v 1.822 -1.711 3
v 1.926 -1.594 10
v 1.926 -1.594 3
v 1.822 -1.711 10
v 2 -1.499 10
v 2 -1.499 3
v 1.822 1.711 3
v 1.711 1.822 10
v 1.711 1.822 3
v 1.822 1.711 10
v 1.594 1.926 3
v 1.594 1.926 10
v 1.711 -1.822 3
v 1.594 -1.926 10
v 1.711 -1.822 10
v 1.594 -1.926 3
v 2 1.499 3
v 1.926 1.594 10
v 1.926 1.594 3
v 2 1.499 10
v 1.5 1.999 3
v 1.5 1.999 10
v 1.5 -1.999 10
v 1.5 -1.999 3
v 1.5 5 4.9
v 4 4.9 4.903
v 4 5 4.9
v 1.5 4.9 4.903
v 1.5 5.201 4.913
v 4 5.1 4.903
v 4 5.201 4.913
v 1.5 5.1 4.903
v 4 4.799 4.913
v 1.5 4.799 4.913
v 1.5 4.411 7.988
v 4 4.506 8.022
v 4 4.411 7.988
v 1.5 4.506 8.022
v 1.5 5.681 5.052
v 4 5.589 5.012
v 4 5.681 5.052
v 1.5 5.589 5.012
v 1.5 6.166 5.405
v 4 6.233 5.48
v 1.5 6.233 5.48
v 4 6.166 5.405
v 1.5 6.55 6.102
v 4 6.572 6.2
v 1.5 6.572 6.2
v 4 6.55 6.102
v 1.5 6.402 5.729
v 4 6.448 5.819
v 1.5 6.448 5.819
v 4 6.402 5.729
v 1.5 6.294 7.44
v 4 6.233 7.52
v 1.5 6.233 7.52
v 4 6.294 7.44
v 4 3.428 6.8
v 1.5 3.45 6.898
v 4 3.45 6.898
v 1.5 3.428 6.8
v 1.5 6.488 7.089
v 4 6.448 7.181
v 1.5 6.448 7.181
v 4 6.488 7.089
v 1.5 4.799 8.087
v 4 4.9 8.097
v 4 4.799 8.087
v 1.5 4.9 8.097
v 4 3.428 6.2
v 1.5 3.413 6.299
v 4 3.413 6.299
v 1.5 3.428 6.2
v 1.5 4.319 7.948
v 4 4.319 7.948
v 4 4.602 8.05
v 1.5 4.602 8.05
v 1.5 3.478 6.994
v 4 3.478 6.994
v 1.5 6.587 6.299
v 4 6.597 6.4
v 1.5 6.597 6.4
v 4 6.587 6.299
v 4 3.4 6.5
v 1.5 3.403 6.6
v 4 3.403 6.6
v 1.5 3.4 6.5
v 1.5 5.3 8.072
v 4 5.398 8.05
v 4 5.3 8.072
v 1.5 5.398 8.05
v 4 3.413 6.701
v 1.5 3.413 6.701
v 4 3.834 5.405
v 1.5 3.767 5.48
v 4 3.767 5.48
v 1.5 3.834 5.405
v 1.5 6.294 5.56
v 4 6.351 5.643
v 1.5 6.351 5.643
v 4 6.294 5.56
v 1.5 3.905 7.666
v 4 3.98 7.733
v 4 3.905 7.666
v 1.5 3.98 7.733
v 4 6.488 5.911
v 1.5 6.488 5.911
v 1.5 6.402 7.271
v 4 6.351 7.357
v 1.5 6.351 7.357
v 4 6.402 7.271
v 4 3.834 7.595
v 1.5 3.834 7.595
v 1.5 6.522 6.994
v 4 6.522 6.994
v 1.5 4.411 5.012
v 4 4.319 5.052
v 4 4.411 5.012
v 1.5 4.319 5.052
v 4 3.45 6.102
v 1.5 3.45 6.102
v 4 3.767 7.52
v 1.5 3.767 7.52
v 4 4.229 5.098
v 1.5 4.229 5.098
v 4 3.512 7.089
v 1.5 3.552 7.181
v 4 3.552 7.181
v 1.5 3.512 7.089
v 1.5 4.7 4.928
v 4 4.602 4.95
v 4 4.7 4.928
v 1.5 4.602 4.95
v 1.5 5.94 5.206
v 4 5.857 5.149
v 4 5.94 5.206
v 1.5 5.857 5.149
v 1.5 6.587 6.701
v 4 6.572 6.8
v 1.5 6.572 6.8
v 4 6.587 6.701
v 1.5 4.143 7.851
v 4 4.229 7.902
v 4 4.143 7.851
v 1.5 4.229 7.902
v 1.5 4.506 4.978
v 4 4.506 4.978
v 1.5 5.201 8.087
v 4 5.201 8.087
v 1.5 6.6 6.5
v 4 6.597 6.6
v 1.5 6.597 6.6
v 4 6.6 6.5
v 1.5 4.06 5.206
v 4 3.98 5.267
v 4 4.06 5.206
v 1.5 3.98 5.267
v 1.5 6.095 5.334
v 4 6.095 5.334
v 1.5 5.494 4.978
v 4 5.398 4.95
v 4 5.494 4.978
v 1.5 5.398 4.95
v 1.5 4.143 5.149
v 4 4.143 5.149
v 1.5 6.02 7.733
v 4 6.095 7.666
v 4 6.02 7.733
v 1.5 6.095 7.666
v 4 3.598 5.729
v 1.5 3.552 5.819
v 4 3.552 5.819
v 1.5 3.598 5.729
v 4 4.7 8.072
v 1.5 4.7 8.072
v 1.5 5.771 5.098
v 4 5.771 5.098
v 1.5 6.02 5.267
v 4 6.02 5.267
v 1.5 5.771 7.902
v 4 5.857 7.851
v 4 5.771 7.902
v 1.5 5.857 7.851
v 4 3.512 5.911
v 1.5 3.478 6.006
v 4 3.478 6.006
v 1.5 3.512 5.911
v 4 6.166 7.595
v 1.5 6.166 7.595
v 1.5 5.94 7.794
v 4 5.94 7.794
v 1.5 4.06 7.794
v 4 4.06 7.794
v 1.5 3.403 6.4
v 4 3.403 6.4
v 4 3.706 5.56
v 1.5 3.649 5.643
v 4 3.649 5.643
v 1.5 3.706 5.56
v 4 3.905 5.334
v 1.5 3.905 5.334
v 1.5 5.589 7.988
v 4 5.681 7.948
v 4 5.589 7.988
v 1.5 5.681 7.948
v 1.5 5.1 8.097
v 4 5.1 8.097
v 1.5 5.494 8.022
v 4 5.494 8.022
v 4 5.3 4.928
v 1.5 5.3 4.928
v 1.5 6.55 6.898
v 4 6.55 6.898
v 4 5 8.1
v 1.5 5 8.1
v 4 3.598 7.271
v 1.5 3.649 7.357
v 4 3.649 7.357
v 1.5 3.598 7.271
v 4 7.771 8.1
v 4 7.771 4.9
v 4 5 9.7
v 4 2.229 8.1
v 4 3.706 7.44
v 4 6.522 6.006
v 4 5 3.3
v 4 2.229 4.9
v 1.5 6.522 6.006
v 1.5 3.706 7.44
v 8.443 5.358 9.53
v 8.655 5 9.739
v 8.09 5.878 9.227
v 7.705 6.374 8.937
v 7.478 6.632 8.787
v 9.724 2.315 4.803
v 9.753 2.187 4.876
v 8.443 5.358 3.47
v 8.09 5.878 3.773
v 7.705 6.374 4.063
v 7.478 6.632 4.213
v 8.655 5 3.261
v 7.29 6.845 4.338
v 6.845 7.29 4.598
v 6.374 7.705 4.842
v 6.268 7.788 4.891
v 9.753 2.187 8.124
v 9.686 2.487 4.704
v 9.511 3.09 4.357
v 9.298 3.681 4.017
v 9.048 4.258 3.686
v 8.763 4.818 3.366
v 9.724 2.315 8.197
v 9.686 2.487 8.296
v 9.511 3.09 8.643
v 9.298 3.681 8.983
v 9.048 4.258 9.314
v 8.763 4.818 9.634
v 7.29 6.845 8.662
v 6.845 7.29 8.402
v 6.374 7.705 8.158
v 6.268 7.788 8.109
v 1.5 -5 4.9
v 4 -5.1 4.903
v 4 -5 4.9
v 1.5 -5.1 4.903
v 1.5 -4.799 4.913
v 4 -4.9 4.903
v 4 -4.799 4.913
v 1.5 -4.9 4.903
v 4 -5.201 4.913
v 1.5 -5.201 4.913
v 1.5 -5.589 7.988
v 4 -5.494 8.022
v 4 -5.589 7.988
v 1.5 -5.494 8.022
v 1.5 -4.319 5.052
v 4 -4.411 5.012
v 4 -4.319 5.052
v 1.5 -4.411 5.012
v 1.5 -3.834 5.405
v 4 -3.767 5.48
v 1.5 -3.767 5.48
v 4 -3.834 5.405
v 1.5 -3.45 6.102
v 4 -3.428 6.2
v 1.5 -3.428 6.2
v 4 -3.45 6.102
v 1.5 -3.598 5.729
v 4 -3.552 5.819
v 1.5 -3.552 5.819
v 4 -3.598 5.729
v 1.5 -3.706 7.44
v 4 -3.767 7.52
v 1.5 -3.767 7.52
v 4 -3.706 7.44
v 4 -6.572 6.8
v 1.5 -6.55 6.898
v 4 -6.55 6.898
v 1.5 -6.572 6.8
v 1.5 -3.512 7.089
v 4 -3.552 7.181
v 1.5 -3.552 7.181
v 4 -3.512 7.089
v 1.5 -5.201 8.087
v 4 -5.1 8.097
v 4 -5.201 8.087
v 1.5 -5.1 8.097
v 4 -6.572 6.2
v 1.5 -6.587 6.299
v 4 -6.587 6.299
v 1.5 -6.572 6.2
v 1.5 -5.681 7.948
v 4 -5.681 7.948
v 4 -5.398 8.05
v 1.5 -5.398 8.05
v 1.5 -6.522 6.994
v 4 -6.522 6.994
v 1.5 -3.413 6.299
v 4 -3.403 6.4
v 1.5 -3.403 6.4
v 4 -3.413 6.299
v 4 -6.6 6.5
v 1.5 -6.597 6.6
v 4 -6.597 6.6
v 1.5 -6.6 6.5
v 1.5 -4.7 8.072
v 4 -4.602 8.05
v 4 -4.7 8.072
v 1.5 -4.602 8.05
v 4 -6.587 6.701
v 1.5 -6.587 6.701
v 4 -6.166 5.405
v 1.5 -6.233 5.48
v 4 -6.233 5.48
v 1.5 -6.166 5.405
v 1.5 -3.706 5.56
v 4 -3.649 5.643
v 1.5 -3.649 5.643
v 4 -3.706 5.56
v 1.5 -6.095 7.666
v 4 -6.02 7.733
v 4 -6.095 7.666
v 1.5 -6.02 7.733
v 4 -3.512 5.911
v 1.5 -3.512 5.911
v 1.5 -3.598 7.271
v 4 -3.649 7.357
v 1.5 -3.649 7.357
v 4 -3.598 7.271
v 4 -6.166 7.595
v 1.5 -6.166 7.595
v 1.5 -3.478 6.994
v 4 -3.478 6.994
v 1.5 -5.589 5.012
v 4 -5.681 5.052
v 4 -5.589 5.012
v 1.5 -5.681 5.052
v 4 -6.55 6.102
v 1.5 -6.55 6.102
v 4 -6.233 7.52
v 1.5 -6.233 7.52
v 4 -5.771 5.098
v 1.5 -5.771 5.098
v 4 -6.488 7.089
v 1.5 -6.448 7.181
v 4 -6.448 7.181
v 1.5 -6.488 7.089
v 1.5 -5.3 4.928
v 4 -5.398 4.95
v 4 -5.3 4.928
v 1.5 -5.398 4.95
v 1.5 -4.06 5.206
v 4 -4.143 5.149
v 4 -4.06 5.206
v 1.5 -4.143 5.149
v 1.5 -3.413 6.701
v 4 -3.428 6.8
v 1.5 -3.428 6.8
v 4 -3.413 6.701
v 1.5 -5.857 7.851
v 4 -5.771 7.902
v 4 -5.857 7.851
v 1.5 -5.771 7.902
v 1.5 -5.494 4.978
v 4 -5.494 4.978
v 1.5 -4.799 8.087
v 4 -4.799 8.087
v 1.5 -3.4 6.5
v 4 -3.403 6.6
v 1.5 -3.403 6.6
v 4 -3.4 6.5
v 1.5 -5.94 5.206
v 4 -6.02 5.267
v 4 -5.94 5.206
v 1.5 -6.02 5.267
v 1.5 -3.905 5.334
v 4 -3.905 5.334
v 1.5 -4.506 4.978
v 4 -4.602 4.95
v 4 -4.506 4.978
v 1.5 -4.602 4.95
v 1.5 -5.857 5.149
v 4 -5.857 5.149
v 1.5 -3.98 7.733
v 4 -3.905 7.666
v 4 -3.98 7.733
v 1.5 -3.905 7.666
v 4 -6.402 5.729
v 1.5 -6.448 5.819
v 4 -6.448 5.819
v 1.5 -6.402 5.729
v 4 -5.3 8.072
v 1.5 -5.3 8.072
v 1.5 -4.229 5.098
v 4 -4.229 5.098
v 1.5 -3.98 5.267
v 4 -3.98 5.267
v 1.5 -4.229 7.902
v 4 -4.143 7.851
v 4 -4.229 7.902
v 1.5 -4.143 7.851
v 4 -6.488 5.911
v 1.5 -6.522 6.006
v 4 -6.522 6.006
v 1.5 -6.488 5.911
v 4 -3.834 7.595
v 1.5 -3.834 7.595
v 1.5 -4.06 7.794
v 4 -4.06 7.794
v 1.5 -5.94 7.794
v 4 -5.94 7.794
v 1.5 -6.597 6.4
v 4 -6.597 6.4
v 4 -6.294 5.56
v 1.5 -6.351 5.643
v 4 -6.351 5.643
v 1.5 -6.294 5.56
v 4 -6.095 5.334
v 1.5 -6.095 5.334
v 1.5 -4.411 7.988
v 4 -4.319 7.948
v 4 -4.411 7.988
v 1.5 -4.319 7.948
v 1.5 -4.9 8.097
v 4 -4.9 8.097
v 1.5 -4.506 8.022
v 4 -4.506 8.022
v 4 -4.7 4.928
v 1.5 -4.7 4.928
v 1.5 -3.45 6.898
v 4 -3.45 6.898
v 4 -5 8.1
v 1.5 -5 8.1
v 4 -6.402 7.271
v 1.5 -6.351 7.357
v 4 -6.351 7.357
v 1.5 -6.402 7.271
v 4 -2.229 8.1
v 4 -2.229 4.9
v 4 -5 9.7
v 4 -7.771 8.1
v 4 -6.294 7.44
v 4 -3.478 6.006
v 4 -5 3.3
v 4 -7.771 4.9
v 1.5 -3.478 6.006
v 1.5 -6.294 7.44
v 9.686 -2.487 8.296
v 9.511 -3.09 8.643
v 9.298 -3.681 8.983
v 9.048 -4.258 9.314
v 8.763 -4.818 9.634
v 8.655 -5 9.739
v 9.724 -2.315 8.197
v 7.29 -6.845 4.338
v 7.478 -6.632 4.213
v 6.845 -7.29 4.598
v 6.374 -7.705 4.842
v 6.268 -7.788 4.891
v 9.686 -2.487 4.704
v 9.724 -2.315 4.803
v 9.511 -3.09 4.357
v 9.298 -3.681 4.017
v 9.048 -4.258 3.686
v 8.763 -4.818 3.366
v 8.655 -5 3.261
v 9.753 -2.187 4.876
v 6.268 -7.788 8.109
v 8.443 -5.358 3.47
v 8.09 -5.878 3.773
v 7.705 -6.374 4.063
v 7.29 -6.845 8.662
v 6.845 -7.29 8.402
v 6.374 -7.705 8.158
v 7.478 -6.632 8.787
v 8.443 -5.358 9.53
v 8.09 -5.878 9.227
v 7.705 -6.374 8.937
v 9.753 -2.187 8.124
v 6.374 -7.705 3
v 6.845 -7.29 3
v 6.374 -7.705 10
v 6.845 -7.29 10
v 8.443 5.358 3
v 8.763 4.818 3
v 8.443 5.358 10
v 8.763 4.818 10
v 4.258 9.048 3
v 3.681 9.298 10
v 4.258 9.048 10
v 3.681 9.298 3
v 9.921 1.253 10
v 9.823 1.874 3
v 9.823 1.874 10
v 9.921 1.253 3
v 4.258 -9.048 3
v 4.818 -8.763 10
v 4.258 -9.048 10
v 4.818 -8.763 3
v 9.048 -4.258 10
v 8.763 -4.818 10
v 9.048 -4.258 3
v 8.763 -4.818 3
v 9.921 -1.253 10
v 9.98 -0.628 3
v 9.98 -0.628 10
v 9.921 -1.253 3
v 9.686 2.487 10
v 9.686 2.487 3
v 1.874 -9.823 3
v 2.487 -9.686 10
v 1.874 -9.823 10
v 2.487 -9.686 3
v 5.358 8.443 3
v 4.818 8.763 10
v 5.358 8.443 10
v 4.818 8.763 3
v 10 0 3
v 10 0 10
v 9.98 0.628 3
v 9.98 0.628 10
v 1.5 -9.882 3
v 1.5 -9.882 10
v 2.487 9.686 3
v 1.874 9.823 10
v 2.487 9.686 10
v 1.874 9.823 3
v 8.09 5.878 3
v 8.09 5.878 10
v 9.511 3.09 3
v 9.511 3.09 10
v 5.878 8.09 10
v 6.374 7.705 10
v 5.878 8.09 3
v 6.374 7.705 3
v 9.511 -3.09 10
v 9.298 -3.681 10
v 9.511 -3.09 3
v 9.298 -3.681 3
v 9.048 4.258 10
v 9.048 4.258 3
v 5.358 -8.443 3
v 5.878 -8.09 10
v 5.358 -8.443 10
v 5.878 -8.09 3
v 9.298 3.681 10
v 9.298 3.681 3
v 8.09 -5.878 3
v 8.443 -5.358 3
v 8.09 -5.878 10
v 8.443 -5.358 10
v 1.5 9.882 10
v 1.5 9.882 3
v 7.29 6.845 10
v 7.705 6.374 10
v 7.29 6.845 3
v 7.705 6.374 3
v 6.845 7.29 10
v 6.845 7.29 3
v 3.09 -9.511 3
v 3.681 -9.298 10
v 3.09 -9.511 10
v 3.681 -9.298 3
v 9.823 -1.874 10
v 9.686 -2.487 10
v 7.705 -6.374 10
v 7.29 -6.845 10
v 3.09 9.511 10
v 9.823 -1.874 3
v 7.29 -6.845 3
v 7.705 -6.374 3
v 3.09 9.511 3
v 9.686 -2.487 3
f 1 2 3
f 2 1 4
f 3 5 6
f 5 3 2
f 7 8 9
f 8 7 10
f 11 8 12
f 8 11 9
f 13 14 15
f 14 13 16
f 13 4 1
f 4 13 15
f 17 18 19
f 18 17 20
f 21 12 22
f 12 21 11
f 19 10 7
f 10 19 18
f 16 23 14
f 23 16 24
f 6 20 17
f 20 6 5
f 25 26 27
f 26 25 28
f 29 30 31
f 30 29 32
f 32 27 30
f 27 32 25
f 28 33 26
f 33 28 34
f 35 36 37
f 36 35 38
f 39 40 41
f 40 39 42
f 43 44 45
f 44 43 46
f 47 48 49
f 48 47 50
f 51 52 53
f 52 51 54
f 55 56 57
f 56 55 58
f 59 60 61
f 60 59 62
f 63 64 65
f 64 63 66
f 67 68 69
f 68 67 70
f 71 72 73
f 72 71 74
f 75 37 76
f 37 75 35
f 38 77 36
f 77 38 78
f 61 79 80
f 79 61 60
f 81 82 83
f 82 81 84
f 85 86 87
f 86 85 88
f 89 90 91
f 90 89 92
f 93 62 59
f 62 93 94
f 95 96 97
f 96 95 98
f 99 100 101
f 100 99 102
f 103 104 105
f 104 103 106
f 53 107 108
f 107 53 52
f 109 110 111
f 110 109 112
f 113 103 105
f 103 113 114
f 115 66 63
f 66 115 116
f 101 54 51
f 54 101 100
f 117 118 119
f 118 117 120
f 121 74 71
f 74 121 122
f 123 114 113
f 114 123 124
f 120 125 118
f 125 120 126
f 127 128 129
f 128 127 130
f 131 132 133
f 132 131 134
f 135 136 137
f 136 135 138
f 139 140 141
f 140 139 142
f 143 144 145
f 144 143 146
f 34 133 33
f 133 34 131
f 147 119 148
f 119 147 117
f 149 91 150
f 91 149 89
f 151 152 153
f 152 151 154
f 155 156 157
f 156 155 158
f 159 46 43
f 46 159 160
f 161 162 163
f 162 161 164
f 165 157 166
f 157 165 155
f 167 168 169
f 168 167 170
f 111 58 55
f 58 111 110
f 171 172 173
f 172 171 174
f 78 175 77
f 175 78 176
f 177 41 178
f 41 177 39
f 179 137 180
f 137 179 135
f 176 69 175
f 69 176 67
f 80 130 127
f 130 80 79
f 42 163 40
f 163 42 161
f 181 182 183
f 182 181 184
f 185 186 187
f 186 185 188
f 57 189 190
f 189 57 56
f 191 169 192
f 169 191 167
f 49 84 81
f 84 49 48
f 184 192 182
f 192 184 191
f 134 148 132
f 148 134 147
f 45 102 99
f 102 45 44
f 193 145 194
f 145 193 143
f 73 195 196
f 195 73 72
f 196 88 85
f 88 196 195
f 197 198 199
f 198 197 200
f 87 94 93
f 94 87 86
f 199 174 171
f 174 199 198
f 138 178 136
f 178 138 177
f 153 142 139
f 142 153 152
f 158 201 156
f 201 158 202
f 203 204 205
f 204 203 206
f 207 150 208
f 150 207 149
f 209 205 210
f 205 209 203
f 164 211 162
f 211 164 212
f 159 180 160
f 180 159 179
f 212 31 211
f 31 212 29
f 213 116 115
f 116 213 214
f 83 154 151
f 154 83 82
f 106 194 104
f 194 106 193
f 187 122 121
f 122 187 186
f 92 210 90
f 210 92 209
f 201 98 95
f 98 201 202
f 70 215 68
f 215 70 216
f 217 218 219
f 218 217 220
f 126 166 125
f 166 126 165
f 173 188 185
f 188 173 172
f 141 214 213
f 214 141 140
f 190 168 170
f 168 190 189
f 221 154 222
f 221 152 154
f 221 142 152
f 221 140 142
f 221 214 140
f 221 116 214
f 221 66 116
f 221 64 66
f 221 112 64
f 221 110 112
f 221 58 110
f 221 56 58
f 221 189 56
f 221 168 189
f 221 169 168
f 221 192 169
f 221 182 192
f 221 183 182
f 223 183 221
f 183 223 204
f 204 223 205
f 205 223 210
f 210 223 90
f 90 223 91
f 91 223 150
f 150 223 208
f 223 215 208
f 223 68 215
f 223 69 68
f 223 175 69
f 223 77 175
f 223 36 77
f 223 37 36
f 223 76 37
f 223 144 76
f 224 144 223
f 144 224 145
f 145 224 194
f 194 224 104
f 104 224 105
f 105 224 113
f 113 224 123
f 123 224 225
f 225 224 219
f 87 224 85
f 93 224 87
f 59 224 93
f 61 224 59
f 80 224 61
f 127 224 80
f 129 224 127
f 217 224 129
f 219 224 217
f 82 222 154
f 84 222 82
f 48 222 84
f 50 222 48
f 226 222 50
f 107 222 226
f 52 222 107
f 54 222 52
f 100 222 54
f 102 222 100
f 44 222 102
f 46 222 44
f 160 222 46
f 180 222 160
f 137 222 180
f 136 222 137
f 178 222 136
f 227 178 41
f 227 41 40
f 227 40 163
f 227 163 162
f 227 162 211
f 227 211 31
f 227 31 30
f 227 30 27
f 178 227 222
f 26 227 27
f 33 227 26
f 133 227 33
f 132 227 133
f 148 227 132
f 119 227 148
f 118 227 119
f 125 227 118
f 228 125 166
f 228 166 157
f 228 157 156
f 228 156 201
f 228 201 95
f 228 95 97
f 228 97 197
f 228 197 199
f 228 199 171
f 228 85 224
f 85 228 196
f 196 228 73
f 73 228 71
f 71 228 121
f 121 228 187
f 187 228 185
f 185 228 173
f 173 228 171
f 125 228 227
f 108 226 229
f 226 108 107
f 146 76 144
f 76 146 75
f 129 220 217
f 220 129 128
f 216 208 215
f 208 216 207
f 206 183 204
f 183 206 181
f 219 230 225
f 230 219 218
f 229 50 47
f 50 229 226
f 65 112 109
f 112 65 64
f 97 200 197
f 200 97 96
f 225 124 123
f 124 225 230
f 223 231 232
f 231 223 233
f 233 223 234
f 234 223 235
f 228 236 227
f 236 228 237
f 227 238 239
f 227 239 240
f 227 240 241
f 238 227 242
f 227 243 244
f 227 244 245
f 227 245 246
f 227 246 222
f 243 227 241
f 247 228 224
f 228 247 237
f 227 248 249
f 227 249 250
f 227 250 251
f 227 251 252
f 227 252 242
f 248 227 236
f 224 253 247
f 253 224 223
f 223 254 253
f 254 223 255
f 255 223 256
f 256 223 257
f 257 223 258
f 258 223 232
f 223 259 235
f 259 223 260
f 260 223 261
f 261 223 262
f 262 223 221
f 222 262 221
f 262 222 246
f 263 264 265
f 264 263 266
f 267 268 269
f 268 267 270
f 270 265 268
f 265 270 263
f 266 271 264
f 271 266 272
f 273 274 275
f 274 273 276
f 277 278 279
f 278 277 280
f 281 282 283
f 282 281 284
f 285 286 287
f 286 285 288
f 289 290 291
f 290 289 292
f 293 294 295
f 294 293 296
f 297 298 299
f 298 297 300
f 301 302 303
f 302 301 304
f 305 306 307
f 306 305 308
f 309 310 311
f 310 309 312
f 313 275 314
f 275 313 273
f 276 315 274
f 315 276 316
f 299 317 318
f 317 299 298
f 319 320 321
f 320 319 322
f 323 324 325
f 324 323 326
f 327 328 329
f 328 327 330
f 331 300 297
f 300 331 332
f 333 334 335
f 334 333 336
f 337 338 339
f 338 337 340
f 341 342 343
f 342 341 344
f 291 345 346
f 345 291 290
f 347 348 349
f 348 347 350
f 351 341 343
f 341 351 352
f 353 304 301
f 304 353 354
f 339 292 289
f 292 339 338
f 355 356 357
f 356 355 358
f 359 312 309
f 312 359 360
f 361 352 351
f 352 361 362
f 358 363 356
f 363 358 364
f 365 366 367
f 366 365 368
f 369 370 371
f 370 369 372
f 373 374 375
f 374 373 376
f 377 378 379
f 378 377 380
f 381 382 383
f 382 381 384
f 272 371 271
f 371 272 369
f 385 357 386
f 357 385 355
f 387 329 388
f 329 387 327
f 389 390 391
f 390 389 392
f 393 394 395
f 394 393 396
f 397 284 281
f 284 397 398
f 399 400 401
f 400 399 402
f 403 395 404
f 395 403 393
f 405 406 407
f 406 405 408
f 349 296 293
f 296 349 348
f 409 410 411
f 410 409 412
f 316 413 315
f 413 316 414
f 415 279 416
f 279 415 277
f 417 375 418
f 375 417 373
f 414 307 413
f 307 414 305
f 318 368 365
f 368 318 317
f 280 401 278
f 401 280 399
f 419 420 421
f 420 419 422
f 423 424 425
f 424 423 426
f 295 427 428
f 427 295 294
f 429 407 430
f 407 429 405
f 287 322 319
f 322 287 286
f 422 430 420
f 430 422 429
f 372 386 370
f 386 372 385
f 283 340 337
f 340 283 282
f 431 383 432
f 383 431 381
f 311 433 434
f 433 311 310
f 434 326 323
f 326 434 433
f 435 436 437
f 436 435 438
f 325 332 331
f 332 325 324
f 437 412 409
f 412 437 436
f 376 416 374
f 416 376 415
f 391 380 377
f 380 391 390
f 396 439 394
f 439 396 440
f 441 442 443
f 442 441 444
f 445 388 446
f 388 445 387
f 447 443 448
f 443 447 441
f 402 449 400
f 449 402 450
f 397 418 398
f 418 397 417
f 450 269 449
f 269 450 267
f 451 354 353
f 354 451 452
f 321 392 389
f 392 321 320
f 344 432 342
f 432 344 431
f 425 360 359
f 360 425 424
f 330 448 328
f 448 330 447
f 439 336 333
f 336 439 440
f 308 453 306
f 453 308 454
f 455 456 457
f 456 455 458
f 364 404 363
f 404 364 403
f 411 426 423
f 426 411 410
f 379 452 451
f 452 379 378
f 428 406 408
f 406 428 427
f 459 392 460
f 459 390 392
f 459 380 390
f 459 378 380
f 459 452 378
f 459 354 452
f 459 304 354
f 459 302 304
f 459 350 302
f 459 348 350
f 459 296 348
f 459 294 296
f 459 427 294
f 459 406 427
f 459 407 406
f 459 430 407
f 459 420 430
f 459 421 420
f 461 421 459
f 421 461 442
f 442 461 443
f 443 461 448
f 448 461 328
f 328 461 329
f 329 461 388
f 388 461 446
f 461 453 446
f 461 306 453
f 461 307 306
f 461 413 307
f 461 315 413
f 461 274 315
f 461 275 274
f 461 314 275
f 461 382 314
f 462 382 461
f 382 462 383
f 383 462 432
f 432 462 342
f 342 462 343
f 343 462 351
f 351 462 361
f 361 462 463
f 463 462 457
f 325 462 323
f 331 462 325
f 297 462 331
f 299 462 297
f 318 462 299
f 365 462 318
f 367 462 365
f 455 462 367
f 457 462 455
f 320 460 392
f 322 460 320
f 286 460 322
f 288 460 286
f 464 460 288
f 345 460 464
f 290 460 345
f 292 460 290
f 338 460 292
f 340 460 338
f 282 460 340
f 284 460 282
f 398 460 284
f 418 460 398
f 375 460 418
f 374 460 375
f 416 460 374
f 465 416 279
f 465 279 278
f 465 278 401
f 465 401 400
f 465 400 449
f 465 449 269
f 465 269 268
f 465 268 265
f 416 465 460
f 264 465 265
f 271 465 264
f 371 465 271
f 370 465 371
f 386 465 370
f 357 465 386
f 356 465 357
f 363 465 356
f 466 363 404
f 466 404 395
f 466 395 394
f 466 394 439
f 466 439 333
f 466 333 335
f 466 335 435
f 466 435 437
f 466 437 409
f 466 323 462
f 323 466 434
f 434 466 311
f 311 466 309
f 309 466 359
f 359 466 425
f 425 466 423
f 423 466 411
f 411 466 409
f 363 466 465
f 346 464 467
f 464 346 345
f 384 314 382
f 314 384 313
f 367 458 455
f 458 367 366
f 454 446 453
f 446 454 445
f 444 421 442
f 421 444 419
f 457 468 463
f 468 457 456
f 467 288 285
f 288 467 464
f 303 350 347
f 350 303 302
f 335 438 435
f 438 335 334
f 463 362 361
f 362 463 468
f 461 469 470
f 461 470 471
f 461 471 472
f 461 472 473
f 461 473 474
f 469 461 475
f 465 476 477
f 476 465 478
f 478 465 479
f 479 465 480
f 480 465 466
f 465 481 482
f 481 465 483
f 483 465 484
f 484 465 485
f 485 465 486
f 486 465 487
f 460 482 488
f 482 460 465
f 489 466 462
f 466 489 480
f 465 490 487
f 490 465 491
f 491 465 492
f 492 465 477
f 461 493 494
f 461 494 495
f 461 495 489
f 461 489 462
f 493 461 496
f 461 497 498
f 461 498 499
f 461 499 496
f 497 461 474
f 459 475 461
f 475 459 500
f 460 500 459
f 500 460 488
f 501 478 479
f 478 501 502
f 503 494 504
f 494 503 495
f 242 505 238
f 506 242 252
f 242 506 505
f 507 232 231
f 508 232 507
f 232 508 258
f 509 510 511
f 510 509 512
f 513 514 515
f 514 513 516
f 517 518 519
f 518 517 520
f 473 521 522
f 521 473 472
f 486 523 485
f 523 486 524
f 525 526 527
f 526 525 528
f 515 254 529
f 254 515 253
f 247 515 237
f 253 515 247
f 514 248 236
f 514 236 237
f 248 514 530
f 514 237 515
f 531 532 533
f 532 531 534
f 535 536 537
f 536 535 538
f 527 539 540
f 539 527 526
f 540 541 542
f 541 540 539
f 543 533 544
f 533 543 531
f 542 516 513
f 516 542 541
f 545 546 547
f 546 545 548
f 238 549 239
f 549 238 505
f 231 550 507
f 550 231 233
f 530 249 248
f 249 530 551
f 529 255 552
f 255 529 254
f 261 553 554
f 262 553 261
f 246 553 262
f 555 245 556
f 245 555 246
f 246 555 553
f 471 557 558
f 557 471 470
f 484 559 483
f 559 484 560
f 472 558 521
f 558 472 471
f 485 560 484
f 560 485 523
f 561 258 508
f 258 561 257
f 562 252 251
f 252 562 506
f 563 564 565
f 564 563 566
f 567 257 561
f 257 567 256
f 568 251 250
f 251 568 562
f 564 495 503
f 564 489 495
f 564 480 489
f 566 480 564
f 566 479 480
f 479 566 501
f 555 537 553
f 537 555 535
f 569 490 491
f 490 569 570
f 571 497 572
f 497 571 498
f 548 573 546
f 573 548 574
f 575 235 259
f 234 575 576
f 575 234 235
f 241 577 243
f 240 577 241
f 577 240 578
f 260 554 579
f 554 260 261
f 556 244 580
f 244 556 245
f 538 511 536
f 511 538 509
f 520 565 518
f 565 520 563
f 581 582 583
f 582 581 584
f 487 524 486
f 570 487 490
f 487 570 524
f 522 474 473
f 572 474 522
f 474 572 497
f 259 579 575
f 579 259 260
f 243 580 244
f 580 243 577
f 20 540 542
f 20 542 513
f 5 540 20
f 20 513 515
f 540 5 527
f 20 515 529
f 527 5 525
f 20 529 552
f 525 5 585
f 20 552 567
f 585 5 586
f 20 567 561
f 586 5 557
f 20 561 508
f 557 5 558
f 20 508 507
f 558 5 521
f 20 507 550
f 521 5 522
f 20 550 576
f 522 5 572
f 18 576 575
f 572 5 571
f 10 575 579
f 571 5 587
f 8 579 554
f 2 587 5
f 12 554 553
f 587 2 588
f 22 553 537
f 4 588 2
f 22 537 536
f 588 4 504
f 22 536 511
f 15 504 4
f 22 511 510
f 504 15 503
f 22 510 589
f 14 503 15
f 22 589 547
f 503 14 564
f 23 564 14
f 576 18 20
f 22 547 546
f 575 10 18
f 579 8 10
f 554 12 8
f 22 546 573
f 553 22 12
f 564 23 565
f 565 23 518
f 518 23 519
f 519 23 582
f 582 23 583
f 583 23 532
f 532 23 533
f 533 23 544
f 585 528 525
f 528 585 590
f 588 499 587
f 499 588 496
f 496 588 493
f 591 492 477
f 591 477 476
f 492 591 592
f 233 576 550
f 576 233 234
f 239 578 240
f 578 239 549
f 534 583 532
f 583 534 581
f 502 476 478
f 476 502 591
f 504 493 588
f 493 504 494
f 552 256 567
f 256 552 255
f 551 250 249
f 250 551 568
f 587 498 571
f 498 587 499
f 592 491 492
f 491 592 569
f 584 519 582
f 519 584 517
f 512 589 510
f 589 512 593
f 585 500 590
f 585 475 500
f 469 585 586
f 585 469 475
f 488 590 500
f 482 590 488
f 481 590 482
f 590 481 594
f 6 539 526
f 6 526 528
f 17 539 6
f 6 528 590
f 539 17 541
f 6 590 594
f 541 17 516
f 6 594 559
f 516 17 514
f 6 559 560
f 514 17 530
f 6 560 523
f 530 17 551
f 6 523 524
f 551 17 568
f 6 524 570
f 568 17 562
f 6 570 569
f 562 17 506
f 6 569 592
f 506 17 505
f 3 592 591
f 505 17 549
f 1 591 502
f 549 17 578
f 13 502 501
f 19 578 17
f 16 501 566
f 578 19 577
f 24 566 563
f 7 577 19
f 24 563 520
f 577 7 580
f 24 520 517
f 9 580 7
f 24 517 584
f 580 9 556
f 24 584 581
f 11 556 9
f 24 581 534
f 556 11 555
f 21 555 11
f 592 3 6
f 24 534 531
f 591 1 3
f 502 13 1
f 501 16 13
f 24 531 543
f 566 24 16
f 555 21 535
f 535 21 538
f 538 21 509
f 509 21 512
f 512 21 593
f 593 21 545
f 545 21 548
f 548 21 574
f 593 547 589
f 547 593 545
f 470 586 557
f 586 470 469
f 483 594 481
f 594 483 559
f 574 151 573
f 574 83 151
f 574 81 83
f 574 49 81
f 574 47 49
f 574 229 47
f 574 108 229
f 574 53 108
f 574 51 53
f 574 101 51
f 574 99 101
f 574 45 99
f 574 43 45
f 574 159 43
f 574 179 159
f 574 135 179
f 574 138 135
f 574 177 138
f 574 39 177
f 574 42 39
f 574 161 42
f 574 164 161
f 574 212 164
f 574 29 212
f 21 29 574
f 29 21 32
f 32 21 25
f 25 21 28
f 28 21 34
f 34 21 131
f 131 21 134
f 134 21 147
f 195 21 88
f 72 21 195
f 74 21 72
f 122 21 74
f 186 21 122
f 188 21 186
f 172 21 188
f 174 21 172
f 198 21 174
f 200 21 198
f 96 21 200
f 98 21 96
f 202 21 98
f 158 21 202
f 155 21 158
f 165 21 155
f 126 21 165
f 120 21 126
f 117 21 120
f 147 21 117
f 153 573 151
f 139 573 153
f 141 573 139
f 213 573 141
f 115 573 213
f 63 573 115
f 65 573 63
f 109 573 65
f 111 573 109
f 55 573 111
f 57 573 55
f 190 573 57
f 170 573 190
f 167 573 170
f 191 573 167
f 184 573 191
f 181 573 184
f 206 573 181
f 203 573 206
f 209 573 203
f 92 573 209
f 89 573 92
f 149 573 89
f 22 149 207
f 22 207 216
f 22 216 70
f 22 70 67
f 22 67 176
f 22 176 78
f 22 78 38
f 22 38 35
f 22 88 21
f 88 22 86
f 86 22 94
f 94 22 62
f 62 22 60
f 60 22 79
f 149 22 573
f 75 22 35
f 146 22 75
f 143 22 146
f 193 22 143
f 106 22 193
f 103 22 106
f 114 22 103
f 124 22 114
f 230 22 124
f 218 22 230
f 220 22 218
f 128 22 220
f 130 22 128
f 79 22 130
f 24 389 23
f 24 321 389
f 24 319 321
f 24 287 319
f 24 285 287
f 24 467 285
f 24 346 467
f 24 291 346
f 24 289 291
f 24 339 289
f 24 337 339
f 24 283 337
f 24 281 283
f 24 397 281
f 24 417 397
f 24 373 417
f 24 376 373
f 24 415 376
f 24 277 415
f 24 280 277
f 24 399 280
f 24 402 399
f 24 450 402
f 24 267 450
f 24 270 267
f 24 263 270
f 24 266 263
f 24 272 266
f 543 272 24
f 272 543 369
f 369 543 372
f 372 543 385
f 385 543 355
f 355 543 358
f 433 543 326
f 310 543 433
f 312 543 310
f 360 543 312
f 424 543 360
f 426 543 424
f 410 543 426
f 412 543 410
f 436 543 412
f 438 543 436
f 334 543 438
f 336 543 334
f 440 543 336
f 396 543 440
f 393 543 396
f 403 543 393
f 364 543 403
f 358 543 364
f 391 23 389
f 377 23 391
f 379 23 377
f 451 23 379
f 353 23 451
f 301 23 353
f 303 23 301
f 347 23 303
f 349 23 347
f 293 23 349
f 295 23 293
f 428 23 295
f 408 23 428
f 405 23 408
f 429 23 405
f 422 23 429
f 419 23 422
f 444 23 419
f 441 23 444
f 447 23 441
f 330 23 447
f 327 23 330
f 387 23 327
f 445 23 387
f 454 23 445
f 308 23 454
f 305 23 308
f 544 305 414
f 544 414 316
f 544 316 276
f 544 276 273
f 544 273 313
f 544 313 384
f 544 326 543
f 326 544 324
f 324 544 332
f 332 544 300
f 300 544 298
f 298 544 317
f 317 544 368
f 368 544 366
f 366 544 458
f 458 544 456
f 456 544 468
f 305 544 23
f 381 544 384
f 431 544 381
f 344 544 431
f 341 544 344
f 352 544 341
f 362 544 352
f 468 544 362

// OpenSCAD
$fn=100;

/*
--------------------------------------------------------
EXTRA STUFF BELOW!!  ...  Descibes a separate part.
Draw and place the hub lock (for looks).  
The dummy_shaft and hub_lock should be moved to a separate file for STL generation???

Dummy_shaft is part of hub_lock.
*/

//  v 2.1 enlarges the nut hole to "Best Fit"
module nut_hole (){
	cylinder (6,1.6,1.6);
	translate ([0,0,6])
		cylinder (6,3.2,3.25, $fn=6);
}


module dummy_shaft(){
	difference (){
		cylinder (9.02,2.5,2.5);
		translate ([2.0,-2.5,-.01])
		cube ([5,5,9.04]);
	}
}

module hub_lock (){

	difference (){
		cylinder (7,10,10);
		translate ([-18.5,-10,-.01])
			cube ([20,20,7.02]);
		translate ([0,0,-.01])
			dummy_shaft();
		translate ([-2,5,3.5])
			rotate (90,[0,1,0])
			nut_hole ();
		translate ([-2,-5,3.5])
			rotate (90,[0,1,0])
			nut_hole ();

		

	}
}



/*

Draw and place the hub_lock for a look at the whole assembly.  (Move for printing ????)
*/
translate ([0,0,3])
	hub_lock ();
